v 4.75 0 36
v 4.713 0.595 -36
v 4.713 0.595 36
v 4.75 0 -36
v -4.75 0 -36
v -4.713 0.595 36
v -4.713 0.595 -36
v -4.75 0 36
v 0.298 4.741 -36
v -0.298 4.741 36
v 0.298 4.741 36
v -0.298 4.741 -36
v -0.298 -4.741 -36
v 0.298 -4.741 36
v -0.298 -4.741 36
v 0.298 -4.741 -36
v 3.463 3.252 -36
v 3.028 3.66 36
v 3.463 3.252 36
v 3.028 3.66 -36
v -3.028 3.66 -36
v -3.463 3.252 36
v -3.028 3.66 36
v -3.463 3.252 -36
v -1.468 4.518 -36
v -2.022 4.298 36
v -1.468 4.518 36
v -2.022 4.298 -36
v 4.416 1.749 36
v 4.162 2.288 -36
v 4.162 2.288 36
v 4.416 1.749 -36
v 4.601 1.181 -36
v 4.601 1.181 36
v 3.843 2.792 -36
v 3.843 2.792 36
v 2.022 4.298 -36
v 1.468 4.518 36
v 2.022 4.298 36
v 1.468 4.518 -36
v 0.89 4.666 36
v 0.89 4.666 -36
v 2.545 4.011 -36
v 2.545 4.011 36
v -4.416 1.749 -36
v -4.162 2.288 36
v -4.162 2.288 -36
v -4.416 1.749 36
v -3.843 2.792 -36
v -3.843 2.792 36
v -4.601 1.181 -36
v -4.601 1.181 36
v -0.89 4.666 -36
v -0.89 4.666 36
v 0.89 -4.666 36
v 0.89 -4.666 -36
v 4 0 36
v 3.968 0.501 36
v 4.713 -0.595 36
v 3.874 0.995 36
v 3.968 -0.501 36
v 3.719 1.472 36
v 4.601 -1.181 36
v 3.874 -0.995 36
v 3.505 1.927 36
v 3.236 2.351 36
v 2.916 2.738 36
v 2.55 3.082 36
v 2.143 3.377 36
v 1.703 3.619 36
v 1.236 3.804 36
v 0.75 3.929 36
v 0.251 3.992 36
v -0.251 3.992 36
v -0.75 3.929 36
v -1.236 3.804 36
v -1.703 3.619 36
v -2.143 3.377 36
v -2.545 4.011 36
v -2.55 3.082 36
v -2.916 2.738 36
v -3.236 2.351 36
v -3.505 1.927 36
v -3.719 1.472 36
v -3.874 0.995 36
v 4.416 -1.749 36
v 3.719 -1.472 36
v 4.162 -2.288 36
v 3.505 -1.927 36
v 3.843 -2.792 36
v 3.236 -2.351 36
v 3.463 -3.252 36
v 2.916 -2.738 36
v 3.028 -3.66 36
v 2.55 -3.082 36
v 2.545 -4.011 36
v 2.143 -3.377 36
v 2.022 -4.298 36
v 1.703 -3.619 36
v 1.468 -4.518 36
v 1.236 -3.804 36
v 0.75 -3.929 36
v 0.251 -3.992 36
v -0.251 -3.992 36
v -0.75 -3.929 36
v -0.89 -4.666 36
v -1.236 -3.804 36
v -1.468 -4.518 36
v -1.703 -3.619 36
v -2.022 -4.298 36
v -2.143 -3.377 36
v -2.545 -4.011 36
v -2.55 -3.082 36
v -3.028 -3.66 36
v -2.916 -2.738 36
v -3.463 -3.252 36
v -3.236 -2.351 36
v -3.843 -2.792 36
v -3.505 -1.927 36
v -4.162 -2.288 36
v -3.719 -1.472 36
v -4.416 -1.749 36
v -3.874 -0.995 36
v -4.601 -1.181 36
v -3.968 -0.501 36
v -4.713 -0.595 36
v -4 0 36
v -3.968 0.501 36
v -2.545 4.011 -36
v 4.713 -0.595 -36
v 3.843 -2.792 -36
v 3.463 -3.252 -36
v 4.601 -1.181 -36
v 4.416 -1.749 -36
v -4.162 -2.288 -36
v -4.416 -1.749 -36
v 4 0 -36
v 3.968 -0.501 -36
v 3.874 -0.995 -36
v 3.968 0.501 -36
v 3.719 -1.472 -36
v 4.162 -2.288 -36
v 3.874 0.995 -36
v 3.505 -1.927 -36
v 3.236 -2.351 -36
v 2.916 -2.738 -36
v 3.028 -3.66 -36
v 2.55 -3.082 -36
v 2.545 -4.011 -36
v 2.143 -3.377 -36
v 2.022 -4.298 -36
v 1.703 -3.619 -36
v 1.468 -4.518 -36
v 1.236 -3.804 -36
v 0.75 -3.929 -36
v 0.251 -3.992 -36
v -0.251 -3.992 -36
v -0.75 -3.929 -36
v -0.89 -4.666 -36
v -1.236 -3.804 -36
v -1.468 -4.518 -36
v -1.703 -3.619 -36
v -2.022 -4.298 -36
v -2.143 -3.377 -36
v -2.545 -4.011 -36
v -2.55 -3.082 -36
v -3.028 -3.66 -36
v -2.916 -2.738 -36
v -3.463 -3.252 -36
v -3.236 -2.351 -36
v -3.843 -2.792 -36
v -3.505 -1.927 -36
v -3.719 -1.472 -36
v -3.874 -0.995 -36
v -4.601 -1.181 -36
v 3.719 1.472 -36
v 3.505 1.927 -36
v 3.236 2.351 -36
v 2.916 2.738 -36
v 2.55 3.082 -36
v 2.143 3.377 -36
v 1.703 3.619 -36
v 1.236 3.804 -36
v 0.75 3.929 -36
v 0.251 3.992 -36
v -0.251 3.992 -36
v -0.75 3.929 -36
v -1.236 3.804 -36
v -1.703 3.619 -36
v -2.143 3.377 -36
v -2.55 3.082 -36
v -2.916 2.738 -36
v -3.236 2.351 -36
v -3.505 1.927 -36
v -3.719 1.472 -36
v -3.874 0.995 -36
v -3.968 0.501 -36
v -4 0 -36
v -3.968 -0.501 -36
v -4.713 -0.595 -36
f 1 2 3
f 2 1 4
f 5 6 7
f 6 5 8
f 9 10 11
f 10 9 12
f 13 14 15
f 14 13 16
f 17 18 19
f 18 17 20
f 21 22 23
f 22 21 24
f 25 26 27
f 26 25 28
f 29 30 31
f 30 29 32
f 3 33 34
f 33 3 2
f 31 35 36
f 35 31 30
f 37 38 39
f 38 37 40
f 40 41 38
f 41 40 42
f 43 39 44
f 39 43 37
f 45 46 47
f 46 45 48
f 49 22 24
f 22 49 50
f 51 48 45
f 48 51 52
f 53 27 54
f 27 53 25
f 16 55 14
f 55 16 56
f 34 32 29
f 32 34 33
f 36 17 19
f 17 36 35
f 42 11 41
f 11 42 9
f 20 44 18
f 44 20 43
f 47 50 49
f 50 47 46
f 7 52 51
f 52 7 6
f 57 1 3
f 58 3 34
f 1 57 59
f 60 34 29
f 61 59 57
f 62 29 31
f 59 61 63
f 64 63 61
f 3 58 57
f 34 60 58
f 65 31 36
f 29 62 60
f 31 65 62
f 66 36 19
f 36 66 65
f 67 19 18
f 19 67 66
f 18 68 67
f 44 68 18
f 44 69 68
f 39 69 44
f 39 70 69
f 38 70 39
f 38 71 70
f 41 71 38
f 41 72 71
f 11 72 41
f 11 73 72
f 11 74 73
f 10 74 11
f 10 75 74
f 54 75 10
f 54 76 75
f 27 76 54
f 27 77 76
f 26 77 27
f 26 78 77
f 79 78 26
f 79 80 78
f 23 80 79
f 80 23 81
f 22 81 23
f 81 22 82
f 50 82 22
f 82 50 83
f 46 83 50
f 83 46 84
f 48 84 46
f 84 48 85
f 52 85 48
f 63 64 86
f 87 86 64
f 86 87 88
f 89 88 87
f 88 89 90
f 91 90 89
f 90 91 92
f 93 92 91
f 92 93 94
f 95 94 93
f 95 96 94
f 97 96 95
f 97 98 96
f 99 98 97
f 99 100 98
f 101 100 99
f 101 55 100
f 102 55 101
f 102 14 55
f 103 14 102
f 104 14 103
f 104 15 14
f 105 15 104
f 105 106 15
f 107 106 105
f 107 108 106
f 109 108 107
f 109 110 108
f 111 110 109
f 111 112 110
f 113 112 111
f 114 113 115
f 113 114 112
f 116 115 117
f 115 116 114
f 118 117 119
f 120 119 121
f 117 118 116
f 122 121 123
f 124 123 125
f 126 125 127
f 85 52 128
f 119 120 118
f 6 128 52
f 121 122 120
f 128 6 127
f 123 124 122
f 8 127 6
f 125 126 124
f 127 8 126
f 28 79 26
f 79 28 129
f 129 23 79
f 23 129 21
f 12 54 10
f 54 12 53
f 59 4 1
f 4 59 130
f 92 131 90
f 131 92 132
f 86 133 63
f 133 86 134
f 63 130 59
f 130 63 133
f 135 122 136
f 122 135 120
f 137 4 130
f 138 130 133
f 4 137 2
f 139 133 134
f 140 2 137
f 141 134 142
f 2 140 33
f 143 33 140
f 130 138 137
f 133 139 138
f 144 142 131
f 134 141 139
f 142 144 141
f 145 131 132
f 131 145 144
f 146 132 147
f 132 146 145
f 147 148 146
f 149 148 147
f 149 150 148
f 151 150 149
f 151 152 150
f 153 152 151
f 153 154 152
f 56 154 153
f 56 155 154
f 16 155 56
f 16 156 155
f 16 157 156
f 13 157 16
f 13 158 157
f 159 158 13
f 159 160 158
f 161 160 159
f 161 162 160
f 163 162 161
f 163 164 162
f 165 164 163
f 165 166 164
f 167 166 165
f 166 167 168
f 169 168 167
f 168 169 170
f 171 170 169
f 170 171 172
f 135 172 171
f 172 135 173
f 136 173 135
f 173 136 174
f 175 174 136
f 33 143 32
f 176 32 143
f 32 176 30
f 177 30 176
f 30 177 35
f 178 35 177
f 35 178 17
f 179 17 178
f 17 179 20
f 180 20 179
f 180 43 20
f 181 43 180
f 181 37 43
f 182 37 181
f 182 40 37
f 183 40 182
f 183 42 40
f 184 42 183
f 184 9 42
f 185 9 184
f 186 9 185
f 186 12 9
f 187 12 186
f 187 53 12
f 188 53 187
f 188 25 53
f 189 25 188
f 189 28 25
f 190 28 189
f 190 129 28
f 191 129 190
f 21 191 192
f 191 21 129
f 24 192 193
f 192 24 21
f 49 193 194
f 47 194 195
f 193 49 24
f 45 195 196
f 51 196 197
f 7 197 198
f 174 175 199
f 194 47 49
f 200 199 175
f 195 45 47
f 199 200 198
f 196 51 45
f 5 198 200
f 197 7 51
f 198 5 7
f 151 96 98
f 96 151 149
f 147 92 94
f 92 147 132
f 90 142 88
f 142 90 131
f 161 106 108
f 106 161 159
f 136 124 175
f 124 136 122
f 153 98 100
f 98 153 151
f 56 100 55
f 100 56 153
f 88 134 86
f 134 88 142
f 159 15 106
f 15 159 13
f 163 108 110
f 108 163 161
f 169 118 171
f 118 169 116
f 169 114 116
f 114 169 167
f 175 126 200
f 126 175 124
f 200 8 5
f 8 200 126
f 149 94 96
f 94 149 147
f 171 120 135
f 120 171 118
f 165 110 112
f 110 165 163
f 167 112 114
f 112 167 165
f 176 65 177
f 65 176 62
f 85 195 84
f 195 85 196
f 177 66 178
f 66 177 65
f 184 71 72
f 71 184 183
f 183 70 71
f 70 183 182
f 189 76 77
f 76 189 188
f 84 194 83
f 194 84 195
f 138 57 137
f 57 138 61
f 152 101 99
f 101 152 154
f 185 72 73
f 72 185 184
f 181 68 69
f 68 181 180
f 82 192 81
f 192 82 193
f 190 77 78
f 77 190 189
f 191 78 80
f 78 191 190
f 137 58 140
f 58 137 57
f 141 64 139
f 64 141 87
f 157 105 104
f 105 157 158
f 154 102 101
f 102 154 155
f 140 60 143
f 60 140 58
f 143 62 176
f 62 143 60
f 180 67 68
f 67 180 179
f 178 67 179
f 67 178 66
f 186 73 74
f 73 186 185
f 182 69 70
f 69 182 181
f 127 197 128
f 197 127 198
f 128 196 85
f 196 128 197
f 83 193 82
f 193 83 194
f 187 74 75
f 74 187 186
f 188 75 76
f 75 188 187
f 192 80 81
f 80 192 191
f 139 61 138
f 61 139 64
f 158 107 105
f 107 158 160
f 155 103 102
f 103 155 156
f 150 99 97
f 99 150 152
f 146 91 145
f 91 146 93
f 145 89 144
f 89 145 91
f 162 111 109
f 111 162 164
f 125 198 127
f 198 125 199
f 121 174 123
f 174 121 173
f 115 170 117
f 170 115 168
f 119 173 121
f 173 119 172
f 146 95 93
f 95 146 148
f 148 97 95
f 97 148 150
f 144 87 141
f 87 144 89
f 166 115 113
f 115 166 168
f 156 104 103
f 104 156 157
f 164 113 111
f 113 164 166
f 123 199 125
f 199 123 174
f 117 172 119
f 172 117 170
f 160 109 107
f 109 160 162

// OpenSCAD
$fn = 50;


difference() {
	union() {
		translate(v = [0, 0, -36.0000000000]) {
			cylinder(h = 72, r = 4.7500000000);
		}
	}
	union() {
		translate(v = [0, 0, -100.0000000000]) {
			cylinder(h = 200, r = 4.0000000000);
		}
	}
}
